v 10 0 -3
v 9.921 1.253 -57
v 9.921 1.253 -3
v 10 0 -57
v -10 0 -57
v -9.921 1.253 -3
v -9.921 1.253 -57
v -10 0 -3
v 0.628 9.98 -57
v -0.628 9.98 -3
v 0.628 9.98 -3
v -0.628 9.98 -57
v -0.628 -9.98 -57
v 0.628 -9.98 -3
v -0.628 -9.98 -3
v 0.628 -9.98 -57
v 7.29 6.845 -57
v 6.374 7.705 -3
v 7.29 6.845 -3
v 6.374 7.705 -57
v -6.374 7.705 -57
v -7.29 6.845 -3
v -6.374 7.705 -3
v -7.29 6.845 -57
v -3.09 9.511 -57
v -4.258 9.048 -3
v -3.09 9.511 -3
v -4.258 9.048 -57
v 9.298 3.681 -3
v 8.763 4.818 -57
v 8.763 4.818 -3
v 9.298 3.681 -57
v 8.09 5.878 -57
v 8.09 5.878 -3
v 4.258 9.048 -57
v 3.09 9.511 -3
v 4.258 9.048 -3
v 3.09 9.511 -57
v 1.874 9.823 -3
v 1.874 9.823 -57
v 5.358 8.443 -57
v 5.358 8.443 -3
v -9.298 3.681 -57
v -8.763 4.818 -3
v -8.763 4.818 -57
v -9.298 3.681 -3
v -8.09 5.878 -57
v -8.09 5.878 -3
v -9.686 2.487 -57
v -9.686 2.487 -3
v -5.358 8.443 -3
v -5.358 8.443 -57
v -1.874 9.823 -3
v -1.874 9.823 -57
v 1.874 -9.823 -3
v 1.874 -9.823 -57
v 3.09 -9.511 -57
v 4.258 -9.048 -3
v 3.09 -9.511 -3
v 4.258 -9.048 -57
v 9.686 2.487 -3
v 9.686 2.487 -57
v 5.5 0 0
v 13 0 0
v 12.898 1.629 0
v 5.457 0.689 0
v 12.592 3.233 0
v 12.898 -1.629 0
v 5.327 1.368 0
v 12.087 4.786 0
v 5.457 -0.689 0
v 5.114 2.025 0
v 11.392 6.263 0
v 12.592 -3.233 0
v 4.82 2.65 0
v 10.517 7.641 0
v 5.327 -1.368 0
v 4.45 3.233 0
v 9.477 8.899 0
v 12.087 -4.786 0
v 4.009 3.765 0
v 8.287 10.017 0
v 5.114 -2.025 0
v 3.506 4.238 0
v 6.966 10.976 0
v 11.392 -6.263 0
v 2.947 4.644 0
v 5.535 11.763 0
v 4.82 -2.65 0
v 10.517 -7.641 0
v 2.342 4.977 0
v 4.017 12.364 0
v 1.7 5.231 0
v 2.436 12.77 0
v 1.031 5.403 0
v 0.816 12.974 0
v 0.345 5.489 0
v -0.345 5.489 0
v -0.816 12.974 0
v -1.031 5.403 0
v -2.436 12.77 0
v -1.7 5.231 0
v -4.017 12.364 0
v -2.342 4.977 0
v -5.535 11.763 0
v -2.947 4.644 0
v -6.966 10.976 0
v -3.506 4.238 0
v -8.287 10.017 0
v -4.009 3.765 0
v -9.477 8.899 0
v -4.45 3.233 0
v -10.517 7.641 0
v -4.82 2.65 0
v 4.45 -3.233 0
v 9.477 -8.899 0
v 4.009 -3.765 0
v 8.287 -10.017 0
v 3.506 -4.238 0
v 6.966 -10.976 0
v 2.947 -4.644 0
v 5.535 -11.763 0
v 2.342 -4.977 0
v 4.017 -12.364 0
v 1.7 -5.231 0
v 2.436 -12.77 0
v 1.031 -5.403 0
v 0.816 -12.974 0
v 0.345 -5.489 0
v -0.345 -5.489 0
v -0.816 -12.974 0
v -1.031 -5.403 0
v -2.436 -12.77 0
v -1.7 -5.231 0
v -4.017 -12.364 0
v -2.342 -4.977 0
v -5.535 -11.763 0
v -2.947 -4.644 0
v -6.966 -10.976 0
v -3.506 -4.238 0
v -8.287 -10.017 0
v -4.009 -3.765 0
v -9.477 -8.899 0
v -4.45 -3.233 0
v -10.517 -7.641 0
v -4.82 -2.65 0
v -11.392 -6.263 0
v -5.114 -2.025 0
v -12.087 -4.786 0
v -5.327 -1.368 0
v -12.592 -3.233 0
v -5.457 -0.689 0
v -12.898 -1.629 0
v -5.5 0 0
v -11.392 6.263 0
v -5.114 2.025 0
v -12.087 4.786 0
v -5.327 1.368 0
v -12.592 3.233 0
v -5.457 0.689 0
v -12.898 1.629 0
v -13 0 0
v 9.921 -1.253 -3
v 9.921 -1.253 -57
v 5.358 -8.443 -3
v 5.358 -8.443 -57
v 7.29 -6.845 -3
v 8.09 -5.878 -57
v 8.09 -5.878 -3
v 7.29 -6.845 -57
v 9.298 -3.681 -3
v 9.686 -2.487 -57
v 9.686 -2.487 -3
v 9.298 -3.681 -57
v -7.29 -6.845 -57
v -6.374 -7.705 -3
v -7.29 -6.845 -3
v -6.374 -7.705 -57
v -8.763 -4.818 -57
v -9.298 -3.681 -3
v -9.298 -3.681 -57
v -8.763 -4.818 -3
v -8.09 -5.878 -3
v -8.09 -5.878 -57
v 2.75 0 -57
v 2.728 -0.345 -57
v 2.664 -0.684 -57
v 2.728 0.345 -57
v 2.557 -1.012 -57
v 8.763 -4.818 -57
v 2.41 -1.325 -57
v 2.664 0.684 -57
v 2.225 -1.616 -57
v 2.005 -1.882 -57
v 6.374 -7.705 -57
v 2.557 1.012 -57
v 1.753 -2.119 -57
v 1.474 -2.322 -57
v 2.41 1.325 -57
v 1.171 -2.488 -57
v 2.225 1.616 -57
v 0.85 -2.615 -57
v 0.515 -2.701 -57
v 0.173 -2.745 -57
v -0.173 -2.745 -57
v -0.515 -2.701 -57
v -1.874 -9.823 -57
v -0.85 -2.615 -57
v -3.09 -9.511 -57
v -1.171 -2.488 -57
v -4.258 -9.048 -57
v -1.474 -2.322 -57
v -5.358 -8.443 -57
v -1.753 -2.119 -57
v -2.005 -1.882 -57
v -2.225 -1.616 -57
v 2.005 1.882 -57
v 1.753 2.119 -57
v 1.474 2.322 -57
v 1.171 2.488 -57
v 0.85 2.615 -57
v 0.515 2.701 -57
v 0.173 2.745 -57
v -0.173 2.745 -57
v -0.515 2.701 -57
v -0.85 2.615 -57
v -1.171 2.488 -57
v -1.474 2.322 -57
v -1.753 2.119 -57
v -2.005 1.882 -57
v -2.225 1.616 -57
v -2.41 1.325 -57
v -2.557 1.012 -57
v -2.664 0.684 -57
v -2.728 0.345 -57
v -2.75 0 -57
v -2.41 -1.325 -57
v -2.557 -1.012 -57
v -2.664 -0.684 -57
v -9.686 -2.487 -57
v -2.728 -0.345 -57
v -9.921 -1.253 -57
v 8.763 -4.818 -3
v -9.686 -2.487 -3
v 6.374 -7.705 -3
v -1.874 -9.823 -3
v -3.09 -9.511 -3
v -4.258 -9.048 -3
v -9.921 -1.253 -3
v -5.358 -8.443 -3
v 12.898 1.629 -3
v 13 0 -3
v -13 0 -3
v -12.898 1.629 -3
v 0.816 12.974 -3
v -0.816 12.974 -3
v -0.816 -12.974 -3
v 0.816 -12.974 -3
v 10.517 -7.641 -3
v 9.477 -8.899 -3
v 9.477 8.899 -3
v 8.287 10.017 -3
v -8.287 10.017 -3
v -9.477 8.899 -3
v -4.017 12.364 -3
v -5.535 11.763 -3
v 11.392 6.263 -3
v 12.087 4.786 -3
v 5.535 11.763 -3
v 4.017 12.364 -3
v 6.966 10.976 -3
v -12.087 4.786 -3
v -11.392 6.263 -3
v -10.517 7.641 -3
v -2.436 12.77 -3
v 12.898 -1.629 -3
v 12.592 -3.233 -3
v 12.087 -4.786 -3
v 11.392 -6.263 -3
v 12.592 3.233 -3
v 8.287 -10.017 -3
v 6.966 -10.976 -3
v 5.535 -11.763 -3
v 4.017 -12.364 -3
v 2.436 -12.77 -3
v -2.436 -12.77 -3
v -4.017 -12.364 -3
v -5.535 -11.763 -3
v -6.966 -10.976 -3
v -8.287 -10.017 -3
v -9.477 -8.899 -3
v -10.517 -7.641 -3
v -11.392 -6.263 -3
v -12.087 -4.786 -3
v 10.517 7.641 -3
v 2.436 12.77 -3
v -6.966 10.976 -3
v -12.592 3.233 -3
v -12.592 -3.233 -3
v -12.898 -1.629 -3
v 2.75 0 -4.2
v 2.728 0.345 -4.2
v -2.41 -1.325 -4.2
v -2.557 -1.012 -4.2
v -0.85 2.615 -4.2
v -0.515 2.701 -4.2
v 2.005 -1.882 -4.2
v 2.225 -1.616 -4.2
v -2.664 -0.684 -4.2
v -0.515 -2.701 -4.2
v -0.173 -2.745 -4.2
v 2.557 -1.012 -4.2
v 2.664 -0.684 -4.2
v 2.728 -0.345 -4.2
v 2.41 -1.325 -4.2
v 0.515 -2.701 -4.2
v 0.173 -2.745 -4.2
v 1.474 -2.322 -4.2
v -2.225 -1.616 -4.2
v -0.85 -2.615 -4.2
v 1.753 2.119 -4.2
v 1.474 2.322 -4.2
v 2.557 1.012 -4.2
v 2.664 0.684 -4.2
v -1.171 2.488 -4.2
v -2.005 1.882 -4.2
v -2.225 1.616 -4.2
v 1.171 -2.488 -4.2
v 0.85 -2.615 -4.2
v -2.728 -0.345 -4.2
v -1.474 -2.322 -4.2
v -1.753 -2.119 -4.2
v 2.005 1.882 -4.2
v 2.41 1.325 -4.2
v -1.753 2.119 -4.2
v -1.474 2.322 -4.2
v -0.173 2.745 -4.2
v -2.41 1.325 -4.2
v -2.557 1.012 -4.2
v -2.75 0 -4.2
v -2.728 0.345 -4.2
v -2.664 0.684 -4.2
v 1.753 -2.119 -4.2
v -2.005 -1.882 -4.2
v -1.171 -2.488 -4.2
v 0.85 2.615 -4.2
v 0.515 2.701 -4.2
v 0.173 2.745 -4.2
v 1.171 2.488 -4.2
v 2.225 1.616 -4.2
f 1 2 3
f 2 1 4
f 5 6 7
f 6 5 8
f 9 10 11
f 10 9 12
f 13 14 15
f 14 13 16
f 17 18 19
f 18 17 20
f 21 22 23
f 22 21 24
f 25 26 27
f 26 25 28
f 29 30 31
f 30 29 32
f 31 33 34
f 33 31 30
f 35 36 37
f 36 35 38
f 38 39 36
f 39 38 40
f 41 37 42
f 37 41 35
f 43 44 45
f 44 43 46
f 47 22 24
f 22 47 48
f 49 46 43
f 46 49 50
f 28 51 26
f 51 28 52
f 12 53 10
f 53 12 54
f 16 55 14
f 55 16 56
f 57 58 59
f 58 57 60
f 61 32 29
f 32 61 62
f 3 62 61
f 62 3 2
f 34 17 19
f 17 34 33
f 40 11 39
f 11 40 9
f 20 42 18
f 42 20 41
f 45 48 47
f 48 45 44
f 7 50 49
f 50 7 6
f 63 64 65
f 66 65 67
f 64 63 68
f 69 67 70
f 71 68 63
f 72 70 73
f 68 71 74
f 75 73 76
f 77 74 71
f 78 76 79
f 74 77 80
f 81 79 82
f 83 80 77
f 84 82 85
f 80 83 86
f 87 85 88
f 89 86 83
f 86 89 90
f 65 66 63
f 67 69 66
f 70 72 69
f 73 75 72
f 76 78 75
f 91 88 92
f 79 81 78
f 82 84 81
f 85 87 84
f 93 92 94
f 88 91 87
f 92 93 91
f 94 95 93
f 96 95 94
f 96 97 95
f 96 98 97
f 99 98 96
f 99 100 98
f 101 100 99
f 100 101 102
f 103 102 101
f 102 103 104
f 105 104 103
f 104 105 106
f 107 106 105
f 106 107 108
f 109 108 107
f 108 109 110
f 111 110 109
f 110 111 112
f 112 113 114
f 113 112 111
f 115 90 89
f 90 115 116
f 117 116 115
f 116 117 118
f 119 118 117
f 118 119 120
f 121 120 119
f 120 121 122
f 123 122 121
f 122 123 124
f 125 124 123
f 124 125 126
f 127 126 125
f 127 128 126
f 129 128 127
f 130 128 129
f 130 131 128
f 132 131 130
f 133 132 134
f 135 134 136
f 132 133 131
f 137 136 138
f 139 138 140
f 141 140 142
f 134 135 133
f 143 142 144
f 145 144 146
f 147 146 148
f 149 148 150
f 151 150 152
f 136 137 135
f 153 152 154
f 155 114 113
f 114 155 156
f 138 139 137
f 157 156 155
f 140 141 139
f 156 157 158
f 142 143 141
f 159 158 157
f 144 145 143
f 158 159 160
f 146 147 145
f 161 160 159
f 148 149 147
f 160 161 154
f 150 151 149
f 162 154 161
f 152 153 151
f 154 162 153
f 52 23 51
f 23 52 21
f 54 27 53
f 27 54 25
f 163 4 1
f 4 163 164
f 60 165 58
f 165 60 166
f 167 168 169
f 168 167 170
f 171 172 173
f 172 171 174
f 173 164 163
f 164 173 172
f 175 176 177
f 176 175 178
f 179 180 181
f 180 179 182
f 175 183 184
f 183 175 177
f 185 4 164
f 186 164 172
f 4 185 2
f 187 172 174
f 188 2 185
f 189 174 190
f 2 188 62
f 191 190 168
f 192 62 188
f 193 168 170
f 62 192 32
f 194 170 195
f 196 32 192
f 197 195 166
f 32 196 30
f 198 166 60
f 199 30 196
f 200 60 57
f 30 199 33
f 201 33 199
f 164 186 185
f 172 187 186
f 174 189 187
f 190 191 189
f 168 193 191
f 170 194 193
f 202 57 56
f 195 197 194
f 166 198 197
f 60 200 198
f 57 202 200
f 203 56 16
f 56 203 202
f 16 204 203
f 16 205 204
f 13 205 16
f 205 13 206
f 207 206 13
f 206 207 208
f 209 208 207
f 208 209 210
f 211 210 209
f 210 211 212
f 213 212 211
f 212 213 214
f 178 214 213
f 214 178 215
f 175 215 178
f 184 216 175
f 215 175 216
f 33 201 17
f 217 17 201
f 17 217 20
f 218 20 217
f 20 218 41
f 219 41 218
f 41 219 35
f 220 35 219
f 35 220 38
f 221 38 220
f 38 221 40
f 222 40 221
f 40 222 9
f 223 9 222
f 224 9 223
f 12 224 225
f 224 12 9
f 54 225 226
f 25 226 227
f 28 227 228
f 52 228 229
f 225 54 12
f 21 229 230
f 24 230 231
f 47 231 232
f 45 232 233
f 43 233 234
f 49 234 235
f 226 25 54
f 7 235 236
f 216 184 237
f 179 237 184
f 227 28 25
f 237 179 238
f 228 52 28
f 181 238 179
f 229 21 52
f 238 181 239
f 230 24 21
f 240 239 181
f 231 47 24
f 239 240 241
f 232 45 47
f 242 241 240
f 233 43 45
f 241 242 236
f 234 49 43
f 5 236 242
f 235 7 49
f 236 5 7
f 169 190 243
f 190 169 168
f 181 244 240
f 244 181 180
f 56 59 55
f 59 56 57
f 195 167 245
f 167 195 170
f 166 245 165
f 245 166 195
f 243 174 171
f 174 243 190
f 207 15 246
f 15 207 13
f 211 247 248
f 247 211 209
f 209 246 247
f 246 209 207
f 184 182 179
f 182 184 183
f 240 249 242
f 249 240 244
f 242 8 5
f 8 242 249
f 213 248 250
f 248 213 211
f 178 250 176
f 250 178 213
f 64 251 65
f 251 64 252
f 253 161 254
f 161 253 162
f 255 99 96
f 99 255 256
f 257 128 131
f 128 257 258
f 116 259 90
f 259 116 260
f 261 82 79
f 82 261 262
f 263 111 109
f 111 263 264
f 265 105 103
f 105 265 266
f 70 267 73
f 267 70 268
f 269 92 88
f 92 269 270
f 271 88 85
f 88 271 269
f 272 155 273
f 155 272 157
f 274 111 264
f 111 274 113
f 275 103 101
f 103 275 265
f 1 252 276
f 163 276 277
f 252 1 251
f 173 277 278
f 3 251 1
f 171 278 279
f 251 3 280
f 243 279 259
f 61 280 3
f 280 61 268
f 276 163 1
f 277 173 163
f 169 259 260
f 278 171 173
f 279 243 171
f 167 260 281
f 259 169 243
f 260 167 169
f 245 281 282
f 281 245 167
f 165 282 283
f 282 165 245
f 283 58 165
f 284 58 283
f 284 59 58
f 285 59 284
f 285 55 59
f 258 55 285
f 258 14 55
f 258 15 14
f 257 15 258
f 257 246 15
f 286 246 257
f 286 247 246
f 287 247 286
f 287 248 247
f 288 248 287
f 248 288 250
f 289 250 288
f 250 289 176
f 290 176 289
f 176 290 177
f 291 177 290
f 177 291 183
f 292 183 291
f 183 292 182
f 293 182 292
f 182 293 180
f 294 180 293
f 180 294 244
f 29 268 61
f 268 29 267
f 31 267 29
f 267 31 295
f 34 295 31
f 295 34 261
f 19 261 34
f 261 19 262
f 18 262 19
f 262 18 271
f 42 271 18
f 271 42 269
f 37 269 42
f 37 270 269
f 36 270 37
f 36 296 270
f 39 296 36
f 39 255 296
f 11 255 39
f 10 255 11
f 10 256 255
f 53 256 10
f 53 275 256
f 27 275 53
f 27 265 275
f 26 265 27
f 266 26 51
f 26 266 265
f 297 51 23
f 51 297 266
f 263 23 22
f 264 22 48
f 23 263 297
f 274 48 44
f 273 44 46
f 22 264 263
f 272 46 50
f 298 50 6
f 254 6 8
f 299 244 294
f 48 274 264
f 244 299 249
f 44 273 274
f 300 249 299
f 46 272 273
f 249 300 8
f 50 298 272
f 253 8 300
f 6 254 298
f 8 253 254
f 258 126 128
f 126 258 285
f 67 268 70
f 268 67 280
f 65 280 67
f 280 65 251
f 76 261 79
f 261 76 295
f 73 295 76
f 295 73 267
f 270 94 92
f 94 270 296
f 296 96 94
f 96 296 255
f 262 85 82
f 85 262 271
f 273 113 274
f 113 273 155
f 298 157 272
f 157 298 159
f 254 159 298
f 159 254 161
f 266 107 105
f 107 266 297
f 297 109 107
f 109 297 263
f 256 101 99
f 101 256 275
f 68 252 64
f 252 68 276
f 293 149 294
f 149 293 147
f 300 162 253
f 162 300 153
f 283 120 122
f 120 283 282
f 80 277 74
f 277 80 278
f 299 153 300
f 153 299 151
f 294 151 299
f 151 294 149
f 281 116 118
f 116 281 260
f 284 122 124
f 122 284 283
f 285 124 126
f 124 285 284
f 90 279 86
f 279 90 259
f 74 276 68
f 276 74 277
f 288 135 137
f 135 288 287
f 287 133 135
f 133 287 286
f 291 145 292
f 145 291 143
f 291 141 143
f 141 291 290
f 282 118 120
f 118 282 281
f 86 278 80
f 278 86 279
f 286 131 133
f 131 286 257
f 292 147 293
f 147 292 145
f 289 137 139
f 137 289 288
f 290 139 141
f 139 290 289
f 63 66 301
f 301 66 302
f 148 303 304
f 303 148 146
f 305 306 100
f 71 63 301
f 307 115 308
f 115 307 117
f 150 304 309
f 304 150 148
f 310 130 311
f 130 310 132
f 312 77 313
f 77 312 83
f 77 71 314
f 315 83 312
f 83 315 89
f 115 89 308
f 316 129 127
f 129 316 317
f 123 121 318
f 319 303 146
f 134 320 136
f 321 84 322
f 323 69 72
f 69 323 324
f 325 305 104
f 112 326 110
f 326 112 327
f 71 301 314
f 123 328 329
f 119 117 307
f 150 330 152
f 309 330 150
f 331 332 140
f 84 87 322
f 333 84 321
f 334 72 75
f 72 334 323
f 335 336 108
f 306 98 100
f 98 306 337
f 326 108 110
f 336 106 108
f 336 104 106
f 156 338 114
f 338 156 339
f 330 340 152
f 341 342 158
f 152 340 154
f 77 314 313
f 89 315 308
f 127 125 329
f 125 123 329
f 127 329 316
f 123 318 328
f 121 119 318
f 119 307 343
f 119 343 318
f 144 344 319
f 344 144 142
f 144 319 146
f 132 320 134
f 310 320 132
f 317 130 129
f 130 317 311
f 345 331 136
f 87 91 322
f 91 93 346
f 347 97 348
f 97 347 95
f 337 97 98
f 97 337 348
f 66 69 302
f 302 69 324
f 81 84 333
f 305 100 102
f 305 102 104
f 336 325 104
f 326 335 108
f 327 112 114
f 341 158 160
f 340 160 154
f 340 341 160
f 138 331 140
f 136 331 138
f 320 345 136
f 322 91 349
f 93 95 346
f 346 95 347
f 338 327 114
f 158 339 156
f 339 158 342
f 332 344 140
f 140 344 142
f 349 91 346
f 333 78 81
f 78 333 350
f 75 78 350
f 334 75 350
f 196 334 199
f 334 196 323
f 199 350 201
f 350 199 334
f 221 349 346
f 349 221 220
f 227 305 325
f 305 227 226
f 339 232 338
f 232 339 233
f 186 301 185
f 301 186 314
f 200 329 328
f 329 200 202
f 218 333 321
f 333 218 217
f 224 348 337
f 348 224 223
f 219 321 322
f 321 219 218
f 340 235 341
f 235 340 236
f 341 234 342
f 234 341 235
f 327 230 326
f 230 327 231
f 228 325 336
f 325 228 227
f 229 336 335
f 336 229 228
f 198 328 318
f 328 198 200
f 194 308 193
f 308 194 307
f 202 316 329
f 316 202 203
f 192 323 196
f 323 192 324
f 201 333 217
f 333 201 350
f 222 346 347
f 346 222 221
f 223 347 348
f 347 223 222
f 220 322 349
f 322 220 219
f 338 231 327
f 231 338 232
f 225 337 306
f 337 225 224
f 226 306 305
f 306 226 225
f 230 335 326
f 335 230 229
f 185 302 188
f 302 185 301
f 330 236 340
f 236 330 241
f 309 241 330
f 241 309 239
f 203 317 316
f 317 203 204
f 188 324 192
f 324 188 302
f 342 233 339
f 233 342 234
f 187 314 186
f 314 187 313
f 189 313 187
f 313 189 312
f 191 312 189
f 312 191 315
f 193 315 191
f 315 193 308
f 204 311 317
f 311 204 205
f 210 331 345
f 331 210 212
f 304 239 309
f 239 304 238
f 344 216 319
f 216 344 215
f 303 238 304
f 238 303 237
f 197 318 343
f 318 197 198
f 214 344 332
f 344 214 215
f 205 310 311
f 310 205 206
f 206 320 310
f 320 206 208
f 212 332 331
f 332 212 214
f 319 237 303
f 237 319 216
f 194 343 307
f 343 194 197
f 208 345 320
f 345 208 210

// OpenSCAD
$fn = 50;


difference() {
	union() {
		translate(v = [0, 0, -57.0000000000]) {
			cylinder(h = 57, r = 10.0000000000);
		}
		translate(v = [0, 0, -3.0000000000]) {
			cylinder(h = 3, r = 13.0000000000);
		}
	}
	union() {
		translate(v = [0, 0, 0]) {
			rotate(a = [0, 0, 0]) {
				difference() {
					union() {
						#translate(v = [0, 0, -57.0000000000]) {
							cylinder(h = 57, r = 2.2500000000);
						}
						#translate(v = [0, 0, -4.2000000000]) {
							cylinder(h = 4.2000000000, r1 = 2.7500000000, r2 = 5.5000000000);
						}
						#translate(v = [0, 0, -57.0000000000]) {
							cylinder(h = 57, r = 2.7500000000);
						}
						#translate(v = [0, 0, -57.0000000000]) {
							cylinder(h = 57, r = 2.2500000000);
						}
					}
					union();
				}
			}
		}
	}
}
